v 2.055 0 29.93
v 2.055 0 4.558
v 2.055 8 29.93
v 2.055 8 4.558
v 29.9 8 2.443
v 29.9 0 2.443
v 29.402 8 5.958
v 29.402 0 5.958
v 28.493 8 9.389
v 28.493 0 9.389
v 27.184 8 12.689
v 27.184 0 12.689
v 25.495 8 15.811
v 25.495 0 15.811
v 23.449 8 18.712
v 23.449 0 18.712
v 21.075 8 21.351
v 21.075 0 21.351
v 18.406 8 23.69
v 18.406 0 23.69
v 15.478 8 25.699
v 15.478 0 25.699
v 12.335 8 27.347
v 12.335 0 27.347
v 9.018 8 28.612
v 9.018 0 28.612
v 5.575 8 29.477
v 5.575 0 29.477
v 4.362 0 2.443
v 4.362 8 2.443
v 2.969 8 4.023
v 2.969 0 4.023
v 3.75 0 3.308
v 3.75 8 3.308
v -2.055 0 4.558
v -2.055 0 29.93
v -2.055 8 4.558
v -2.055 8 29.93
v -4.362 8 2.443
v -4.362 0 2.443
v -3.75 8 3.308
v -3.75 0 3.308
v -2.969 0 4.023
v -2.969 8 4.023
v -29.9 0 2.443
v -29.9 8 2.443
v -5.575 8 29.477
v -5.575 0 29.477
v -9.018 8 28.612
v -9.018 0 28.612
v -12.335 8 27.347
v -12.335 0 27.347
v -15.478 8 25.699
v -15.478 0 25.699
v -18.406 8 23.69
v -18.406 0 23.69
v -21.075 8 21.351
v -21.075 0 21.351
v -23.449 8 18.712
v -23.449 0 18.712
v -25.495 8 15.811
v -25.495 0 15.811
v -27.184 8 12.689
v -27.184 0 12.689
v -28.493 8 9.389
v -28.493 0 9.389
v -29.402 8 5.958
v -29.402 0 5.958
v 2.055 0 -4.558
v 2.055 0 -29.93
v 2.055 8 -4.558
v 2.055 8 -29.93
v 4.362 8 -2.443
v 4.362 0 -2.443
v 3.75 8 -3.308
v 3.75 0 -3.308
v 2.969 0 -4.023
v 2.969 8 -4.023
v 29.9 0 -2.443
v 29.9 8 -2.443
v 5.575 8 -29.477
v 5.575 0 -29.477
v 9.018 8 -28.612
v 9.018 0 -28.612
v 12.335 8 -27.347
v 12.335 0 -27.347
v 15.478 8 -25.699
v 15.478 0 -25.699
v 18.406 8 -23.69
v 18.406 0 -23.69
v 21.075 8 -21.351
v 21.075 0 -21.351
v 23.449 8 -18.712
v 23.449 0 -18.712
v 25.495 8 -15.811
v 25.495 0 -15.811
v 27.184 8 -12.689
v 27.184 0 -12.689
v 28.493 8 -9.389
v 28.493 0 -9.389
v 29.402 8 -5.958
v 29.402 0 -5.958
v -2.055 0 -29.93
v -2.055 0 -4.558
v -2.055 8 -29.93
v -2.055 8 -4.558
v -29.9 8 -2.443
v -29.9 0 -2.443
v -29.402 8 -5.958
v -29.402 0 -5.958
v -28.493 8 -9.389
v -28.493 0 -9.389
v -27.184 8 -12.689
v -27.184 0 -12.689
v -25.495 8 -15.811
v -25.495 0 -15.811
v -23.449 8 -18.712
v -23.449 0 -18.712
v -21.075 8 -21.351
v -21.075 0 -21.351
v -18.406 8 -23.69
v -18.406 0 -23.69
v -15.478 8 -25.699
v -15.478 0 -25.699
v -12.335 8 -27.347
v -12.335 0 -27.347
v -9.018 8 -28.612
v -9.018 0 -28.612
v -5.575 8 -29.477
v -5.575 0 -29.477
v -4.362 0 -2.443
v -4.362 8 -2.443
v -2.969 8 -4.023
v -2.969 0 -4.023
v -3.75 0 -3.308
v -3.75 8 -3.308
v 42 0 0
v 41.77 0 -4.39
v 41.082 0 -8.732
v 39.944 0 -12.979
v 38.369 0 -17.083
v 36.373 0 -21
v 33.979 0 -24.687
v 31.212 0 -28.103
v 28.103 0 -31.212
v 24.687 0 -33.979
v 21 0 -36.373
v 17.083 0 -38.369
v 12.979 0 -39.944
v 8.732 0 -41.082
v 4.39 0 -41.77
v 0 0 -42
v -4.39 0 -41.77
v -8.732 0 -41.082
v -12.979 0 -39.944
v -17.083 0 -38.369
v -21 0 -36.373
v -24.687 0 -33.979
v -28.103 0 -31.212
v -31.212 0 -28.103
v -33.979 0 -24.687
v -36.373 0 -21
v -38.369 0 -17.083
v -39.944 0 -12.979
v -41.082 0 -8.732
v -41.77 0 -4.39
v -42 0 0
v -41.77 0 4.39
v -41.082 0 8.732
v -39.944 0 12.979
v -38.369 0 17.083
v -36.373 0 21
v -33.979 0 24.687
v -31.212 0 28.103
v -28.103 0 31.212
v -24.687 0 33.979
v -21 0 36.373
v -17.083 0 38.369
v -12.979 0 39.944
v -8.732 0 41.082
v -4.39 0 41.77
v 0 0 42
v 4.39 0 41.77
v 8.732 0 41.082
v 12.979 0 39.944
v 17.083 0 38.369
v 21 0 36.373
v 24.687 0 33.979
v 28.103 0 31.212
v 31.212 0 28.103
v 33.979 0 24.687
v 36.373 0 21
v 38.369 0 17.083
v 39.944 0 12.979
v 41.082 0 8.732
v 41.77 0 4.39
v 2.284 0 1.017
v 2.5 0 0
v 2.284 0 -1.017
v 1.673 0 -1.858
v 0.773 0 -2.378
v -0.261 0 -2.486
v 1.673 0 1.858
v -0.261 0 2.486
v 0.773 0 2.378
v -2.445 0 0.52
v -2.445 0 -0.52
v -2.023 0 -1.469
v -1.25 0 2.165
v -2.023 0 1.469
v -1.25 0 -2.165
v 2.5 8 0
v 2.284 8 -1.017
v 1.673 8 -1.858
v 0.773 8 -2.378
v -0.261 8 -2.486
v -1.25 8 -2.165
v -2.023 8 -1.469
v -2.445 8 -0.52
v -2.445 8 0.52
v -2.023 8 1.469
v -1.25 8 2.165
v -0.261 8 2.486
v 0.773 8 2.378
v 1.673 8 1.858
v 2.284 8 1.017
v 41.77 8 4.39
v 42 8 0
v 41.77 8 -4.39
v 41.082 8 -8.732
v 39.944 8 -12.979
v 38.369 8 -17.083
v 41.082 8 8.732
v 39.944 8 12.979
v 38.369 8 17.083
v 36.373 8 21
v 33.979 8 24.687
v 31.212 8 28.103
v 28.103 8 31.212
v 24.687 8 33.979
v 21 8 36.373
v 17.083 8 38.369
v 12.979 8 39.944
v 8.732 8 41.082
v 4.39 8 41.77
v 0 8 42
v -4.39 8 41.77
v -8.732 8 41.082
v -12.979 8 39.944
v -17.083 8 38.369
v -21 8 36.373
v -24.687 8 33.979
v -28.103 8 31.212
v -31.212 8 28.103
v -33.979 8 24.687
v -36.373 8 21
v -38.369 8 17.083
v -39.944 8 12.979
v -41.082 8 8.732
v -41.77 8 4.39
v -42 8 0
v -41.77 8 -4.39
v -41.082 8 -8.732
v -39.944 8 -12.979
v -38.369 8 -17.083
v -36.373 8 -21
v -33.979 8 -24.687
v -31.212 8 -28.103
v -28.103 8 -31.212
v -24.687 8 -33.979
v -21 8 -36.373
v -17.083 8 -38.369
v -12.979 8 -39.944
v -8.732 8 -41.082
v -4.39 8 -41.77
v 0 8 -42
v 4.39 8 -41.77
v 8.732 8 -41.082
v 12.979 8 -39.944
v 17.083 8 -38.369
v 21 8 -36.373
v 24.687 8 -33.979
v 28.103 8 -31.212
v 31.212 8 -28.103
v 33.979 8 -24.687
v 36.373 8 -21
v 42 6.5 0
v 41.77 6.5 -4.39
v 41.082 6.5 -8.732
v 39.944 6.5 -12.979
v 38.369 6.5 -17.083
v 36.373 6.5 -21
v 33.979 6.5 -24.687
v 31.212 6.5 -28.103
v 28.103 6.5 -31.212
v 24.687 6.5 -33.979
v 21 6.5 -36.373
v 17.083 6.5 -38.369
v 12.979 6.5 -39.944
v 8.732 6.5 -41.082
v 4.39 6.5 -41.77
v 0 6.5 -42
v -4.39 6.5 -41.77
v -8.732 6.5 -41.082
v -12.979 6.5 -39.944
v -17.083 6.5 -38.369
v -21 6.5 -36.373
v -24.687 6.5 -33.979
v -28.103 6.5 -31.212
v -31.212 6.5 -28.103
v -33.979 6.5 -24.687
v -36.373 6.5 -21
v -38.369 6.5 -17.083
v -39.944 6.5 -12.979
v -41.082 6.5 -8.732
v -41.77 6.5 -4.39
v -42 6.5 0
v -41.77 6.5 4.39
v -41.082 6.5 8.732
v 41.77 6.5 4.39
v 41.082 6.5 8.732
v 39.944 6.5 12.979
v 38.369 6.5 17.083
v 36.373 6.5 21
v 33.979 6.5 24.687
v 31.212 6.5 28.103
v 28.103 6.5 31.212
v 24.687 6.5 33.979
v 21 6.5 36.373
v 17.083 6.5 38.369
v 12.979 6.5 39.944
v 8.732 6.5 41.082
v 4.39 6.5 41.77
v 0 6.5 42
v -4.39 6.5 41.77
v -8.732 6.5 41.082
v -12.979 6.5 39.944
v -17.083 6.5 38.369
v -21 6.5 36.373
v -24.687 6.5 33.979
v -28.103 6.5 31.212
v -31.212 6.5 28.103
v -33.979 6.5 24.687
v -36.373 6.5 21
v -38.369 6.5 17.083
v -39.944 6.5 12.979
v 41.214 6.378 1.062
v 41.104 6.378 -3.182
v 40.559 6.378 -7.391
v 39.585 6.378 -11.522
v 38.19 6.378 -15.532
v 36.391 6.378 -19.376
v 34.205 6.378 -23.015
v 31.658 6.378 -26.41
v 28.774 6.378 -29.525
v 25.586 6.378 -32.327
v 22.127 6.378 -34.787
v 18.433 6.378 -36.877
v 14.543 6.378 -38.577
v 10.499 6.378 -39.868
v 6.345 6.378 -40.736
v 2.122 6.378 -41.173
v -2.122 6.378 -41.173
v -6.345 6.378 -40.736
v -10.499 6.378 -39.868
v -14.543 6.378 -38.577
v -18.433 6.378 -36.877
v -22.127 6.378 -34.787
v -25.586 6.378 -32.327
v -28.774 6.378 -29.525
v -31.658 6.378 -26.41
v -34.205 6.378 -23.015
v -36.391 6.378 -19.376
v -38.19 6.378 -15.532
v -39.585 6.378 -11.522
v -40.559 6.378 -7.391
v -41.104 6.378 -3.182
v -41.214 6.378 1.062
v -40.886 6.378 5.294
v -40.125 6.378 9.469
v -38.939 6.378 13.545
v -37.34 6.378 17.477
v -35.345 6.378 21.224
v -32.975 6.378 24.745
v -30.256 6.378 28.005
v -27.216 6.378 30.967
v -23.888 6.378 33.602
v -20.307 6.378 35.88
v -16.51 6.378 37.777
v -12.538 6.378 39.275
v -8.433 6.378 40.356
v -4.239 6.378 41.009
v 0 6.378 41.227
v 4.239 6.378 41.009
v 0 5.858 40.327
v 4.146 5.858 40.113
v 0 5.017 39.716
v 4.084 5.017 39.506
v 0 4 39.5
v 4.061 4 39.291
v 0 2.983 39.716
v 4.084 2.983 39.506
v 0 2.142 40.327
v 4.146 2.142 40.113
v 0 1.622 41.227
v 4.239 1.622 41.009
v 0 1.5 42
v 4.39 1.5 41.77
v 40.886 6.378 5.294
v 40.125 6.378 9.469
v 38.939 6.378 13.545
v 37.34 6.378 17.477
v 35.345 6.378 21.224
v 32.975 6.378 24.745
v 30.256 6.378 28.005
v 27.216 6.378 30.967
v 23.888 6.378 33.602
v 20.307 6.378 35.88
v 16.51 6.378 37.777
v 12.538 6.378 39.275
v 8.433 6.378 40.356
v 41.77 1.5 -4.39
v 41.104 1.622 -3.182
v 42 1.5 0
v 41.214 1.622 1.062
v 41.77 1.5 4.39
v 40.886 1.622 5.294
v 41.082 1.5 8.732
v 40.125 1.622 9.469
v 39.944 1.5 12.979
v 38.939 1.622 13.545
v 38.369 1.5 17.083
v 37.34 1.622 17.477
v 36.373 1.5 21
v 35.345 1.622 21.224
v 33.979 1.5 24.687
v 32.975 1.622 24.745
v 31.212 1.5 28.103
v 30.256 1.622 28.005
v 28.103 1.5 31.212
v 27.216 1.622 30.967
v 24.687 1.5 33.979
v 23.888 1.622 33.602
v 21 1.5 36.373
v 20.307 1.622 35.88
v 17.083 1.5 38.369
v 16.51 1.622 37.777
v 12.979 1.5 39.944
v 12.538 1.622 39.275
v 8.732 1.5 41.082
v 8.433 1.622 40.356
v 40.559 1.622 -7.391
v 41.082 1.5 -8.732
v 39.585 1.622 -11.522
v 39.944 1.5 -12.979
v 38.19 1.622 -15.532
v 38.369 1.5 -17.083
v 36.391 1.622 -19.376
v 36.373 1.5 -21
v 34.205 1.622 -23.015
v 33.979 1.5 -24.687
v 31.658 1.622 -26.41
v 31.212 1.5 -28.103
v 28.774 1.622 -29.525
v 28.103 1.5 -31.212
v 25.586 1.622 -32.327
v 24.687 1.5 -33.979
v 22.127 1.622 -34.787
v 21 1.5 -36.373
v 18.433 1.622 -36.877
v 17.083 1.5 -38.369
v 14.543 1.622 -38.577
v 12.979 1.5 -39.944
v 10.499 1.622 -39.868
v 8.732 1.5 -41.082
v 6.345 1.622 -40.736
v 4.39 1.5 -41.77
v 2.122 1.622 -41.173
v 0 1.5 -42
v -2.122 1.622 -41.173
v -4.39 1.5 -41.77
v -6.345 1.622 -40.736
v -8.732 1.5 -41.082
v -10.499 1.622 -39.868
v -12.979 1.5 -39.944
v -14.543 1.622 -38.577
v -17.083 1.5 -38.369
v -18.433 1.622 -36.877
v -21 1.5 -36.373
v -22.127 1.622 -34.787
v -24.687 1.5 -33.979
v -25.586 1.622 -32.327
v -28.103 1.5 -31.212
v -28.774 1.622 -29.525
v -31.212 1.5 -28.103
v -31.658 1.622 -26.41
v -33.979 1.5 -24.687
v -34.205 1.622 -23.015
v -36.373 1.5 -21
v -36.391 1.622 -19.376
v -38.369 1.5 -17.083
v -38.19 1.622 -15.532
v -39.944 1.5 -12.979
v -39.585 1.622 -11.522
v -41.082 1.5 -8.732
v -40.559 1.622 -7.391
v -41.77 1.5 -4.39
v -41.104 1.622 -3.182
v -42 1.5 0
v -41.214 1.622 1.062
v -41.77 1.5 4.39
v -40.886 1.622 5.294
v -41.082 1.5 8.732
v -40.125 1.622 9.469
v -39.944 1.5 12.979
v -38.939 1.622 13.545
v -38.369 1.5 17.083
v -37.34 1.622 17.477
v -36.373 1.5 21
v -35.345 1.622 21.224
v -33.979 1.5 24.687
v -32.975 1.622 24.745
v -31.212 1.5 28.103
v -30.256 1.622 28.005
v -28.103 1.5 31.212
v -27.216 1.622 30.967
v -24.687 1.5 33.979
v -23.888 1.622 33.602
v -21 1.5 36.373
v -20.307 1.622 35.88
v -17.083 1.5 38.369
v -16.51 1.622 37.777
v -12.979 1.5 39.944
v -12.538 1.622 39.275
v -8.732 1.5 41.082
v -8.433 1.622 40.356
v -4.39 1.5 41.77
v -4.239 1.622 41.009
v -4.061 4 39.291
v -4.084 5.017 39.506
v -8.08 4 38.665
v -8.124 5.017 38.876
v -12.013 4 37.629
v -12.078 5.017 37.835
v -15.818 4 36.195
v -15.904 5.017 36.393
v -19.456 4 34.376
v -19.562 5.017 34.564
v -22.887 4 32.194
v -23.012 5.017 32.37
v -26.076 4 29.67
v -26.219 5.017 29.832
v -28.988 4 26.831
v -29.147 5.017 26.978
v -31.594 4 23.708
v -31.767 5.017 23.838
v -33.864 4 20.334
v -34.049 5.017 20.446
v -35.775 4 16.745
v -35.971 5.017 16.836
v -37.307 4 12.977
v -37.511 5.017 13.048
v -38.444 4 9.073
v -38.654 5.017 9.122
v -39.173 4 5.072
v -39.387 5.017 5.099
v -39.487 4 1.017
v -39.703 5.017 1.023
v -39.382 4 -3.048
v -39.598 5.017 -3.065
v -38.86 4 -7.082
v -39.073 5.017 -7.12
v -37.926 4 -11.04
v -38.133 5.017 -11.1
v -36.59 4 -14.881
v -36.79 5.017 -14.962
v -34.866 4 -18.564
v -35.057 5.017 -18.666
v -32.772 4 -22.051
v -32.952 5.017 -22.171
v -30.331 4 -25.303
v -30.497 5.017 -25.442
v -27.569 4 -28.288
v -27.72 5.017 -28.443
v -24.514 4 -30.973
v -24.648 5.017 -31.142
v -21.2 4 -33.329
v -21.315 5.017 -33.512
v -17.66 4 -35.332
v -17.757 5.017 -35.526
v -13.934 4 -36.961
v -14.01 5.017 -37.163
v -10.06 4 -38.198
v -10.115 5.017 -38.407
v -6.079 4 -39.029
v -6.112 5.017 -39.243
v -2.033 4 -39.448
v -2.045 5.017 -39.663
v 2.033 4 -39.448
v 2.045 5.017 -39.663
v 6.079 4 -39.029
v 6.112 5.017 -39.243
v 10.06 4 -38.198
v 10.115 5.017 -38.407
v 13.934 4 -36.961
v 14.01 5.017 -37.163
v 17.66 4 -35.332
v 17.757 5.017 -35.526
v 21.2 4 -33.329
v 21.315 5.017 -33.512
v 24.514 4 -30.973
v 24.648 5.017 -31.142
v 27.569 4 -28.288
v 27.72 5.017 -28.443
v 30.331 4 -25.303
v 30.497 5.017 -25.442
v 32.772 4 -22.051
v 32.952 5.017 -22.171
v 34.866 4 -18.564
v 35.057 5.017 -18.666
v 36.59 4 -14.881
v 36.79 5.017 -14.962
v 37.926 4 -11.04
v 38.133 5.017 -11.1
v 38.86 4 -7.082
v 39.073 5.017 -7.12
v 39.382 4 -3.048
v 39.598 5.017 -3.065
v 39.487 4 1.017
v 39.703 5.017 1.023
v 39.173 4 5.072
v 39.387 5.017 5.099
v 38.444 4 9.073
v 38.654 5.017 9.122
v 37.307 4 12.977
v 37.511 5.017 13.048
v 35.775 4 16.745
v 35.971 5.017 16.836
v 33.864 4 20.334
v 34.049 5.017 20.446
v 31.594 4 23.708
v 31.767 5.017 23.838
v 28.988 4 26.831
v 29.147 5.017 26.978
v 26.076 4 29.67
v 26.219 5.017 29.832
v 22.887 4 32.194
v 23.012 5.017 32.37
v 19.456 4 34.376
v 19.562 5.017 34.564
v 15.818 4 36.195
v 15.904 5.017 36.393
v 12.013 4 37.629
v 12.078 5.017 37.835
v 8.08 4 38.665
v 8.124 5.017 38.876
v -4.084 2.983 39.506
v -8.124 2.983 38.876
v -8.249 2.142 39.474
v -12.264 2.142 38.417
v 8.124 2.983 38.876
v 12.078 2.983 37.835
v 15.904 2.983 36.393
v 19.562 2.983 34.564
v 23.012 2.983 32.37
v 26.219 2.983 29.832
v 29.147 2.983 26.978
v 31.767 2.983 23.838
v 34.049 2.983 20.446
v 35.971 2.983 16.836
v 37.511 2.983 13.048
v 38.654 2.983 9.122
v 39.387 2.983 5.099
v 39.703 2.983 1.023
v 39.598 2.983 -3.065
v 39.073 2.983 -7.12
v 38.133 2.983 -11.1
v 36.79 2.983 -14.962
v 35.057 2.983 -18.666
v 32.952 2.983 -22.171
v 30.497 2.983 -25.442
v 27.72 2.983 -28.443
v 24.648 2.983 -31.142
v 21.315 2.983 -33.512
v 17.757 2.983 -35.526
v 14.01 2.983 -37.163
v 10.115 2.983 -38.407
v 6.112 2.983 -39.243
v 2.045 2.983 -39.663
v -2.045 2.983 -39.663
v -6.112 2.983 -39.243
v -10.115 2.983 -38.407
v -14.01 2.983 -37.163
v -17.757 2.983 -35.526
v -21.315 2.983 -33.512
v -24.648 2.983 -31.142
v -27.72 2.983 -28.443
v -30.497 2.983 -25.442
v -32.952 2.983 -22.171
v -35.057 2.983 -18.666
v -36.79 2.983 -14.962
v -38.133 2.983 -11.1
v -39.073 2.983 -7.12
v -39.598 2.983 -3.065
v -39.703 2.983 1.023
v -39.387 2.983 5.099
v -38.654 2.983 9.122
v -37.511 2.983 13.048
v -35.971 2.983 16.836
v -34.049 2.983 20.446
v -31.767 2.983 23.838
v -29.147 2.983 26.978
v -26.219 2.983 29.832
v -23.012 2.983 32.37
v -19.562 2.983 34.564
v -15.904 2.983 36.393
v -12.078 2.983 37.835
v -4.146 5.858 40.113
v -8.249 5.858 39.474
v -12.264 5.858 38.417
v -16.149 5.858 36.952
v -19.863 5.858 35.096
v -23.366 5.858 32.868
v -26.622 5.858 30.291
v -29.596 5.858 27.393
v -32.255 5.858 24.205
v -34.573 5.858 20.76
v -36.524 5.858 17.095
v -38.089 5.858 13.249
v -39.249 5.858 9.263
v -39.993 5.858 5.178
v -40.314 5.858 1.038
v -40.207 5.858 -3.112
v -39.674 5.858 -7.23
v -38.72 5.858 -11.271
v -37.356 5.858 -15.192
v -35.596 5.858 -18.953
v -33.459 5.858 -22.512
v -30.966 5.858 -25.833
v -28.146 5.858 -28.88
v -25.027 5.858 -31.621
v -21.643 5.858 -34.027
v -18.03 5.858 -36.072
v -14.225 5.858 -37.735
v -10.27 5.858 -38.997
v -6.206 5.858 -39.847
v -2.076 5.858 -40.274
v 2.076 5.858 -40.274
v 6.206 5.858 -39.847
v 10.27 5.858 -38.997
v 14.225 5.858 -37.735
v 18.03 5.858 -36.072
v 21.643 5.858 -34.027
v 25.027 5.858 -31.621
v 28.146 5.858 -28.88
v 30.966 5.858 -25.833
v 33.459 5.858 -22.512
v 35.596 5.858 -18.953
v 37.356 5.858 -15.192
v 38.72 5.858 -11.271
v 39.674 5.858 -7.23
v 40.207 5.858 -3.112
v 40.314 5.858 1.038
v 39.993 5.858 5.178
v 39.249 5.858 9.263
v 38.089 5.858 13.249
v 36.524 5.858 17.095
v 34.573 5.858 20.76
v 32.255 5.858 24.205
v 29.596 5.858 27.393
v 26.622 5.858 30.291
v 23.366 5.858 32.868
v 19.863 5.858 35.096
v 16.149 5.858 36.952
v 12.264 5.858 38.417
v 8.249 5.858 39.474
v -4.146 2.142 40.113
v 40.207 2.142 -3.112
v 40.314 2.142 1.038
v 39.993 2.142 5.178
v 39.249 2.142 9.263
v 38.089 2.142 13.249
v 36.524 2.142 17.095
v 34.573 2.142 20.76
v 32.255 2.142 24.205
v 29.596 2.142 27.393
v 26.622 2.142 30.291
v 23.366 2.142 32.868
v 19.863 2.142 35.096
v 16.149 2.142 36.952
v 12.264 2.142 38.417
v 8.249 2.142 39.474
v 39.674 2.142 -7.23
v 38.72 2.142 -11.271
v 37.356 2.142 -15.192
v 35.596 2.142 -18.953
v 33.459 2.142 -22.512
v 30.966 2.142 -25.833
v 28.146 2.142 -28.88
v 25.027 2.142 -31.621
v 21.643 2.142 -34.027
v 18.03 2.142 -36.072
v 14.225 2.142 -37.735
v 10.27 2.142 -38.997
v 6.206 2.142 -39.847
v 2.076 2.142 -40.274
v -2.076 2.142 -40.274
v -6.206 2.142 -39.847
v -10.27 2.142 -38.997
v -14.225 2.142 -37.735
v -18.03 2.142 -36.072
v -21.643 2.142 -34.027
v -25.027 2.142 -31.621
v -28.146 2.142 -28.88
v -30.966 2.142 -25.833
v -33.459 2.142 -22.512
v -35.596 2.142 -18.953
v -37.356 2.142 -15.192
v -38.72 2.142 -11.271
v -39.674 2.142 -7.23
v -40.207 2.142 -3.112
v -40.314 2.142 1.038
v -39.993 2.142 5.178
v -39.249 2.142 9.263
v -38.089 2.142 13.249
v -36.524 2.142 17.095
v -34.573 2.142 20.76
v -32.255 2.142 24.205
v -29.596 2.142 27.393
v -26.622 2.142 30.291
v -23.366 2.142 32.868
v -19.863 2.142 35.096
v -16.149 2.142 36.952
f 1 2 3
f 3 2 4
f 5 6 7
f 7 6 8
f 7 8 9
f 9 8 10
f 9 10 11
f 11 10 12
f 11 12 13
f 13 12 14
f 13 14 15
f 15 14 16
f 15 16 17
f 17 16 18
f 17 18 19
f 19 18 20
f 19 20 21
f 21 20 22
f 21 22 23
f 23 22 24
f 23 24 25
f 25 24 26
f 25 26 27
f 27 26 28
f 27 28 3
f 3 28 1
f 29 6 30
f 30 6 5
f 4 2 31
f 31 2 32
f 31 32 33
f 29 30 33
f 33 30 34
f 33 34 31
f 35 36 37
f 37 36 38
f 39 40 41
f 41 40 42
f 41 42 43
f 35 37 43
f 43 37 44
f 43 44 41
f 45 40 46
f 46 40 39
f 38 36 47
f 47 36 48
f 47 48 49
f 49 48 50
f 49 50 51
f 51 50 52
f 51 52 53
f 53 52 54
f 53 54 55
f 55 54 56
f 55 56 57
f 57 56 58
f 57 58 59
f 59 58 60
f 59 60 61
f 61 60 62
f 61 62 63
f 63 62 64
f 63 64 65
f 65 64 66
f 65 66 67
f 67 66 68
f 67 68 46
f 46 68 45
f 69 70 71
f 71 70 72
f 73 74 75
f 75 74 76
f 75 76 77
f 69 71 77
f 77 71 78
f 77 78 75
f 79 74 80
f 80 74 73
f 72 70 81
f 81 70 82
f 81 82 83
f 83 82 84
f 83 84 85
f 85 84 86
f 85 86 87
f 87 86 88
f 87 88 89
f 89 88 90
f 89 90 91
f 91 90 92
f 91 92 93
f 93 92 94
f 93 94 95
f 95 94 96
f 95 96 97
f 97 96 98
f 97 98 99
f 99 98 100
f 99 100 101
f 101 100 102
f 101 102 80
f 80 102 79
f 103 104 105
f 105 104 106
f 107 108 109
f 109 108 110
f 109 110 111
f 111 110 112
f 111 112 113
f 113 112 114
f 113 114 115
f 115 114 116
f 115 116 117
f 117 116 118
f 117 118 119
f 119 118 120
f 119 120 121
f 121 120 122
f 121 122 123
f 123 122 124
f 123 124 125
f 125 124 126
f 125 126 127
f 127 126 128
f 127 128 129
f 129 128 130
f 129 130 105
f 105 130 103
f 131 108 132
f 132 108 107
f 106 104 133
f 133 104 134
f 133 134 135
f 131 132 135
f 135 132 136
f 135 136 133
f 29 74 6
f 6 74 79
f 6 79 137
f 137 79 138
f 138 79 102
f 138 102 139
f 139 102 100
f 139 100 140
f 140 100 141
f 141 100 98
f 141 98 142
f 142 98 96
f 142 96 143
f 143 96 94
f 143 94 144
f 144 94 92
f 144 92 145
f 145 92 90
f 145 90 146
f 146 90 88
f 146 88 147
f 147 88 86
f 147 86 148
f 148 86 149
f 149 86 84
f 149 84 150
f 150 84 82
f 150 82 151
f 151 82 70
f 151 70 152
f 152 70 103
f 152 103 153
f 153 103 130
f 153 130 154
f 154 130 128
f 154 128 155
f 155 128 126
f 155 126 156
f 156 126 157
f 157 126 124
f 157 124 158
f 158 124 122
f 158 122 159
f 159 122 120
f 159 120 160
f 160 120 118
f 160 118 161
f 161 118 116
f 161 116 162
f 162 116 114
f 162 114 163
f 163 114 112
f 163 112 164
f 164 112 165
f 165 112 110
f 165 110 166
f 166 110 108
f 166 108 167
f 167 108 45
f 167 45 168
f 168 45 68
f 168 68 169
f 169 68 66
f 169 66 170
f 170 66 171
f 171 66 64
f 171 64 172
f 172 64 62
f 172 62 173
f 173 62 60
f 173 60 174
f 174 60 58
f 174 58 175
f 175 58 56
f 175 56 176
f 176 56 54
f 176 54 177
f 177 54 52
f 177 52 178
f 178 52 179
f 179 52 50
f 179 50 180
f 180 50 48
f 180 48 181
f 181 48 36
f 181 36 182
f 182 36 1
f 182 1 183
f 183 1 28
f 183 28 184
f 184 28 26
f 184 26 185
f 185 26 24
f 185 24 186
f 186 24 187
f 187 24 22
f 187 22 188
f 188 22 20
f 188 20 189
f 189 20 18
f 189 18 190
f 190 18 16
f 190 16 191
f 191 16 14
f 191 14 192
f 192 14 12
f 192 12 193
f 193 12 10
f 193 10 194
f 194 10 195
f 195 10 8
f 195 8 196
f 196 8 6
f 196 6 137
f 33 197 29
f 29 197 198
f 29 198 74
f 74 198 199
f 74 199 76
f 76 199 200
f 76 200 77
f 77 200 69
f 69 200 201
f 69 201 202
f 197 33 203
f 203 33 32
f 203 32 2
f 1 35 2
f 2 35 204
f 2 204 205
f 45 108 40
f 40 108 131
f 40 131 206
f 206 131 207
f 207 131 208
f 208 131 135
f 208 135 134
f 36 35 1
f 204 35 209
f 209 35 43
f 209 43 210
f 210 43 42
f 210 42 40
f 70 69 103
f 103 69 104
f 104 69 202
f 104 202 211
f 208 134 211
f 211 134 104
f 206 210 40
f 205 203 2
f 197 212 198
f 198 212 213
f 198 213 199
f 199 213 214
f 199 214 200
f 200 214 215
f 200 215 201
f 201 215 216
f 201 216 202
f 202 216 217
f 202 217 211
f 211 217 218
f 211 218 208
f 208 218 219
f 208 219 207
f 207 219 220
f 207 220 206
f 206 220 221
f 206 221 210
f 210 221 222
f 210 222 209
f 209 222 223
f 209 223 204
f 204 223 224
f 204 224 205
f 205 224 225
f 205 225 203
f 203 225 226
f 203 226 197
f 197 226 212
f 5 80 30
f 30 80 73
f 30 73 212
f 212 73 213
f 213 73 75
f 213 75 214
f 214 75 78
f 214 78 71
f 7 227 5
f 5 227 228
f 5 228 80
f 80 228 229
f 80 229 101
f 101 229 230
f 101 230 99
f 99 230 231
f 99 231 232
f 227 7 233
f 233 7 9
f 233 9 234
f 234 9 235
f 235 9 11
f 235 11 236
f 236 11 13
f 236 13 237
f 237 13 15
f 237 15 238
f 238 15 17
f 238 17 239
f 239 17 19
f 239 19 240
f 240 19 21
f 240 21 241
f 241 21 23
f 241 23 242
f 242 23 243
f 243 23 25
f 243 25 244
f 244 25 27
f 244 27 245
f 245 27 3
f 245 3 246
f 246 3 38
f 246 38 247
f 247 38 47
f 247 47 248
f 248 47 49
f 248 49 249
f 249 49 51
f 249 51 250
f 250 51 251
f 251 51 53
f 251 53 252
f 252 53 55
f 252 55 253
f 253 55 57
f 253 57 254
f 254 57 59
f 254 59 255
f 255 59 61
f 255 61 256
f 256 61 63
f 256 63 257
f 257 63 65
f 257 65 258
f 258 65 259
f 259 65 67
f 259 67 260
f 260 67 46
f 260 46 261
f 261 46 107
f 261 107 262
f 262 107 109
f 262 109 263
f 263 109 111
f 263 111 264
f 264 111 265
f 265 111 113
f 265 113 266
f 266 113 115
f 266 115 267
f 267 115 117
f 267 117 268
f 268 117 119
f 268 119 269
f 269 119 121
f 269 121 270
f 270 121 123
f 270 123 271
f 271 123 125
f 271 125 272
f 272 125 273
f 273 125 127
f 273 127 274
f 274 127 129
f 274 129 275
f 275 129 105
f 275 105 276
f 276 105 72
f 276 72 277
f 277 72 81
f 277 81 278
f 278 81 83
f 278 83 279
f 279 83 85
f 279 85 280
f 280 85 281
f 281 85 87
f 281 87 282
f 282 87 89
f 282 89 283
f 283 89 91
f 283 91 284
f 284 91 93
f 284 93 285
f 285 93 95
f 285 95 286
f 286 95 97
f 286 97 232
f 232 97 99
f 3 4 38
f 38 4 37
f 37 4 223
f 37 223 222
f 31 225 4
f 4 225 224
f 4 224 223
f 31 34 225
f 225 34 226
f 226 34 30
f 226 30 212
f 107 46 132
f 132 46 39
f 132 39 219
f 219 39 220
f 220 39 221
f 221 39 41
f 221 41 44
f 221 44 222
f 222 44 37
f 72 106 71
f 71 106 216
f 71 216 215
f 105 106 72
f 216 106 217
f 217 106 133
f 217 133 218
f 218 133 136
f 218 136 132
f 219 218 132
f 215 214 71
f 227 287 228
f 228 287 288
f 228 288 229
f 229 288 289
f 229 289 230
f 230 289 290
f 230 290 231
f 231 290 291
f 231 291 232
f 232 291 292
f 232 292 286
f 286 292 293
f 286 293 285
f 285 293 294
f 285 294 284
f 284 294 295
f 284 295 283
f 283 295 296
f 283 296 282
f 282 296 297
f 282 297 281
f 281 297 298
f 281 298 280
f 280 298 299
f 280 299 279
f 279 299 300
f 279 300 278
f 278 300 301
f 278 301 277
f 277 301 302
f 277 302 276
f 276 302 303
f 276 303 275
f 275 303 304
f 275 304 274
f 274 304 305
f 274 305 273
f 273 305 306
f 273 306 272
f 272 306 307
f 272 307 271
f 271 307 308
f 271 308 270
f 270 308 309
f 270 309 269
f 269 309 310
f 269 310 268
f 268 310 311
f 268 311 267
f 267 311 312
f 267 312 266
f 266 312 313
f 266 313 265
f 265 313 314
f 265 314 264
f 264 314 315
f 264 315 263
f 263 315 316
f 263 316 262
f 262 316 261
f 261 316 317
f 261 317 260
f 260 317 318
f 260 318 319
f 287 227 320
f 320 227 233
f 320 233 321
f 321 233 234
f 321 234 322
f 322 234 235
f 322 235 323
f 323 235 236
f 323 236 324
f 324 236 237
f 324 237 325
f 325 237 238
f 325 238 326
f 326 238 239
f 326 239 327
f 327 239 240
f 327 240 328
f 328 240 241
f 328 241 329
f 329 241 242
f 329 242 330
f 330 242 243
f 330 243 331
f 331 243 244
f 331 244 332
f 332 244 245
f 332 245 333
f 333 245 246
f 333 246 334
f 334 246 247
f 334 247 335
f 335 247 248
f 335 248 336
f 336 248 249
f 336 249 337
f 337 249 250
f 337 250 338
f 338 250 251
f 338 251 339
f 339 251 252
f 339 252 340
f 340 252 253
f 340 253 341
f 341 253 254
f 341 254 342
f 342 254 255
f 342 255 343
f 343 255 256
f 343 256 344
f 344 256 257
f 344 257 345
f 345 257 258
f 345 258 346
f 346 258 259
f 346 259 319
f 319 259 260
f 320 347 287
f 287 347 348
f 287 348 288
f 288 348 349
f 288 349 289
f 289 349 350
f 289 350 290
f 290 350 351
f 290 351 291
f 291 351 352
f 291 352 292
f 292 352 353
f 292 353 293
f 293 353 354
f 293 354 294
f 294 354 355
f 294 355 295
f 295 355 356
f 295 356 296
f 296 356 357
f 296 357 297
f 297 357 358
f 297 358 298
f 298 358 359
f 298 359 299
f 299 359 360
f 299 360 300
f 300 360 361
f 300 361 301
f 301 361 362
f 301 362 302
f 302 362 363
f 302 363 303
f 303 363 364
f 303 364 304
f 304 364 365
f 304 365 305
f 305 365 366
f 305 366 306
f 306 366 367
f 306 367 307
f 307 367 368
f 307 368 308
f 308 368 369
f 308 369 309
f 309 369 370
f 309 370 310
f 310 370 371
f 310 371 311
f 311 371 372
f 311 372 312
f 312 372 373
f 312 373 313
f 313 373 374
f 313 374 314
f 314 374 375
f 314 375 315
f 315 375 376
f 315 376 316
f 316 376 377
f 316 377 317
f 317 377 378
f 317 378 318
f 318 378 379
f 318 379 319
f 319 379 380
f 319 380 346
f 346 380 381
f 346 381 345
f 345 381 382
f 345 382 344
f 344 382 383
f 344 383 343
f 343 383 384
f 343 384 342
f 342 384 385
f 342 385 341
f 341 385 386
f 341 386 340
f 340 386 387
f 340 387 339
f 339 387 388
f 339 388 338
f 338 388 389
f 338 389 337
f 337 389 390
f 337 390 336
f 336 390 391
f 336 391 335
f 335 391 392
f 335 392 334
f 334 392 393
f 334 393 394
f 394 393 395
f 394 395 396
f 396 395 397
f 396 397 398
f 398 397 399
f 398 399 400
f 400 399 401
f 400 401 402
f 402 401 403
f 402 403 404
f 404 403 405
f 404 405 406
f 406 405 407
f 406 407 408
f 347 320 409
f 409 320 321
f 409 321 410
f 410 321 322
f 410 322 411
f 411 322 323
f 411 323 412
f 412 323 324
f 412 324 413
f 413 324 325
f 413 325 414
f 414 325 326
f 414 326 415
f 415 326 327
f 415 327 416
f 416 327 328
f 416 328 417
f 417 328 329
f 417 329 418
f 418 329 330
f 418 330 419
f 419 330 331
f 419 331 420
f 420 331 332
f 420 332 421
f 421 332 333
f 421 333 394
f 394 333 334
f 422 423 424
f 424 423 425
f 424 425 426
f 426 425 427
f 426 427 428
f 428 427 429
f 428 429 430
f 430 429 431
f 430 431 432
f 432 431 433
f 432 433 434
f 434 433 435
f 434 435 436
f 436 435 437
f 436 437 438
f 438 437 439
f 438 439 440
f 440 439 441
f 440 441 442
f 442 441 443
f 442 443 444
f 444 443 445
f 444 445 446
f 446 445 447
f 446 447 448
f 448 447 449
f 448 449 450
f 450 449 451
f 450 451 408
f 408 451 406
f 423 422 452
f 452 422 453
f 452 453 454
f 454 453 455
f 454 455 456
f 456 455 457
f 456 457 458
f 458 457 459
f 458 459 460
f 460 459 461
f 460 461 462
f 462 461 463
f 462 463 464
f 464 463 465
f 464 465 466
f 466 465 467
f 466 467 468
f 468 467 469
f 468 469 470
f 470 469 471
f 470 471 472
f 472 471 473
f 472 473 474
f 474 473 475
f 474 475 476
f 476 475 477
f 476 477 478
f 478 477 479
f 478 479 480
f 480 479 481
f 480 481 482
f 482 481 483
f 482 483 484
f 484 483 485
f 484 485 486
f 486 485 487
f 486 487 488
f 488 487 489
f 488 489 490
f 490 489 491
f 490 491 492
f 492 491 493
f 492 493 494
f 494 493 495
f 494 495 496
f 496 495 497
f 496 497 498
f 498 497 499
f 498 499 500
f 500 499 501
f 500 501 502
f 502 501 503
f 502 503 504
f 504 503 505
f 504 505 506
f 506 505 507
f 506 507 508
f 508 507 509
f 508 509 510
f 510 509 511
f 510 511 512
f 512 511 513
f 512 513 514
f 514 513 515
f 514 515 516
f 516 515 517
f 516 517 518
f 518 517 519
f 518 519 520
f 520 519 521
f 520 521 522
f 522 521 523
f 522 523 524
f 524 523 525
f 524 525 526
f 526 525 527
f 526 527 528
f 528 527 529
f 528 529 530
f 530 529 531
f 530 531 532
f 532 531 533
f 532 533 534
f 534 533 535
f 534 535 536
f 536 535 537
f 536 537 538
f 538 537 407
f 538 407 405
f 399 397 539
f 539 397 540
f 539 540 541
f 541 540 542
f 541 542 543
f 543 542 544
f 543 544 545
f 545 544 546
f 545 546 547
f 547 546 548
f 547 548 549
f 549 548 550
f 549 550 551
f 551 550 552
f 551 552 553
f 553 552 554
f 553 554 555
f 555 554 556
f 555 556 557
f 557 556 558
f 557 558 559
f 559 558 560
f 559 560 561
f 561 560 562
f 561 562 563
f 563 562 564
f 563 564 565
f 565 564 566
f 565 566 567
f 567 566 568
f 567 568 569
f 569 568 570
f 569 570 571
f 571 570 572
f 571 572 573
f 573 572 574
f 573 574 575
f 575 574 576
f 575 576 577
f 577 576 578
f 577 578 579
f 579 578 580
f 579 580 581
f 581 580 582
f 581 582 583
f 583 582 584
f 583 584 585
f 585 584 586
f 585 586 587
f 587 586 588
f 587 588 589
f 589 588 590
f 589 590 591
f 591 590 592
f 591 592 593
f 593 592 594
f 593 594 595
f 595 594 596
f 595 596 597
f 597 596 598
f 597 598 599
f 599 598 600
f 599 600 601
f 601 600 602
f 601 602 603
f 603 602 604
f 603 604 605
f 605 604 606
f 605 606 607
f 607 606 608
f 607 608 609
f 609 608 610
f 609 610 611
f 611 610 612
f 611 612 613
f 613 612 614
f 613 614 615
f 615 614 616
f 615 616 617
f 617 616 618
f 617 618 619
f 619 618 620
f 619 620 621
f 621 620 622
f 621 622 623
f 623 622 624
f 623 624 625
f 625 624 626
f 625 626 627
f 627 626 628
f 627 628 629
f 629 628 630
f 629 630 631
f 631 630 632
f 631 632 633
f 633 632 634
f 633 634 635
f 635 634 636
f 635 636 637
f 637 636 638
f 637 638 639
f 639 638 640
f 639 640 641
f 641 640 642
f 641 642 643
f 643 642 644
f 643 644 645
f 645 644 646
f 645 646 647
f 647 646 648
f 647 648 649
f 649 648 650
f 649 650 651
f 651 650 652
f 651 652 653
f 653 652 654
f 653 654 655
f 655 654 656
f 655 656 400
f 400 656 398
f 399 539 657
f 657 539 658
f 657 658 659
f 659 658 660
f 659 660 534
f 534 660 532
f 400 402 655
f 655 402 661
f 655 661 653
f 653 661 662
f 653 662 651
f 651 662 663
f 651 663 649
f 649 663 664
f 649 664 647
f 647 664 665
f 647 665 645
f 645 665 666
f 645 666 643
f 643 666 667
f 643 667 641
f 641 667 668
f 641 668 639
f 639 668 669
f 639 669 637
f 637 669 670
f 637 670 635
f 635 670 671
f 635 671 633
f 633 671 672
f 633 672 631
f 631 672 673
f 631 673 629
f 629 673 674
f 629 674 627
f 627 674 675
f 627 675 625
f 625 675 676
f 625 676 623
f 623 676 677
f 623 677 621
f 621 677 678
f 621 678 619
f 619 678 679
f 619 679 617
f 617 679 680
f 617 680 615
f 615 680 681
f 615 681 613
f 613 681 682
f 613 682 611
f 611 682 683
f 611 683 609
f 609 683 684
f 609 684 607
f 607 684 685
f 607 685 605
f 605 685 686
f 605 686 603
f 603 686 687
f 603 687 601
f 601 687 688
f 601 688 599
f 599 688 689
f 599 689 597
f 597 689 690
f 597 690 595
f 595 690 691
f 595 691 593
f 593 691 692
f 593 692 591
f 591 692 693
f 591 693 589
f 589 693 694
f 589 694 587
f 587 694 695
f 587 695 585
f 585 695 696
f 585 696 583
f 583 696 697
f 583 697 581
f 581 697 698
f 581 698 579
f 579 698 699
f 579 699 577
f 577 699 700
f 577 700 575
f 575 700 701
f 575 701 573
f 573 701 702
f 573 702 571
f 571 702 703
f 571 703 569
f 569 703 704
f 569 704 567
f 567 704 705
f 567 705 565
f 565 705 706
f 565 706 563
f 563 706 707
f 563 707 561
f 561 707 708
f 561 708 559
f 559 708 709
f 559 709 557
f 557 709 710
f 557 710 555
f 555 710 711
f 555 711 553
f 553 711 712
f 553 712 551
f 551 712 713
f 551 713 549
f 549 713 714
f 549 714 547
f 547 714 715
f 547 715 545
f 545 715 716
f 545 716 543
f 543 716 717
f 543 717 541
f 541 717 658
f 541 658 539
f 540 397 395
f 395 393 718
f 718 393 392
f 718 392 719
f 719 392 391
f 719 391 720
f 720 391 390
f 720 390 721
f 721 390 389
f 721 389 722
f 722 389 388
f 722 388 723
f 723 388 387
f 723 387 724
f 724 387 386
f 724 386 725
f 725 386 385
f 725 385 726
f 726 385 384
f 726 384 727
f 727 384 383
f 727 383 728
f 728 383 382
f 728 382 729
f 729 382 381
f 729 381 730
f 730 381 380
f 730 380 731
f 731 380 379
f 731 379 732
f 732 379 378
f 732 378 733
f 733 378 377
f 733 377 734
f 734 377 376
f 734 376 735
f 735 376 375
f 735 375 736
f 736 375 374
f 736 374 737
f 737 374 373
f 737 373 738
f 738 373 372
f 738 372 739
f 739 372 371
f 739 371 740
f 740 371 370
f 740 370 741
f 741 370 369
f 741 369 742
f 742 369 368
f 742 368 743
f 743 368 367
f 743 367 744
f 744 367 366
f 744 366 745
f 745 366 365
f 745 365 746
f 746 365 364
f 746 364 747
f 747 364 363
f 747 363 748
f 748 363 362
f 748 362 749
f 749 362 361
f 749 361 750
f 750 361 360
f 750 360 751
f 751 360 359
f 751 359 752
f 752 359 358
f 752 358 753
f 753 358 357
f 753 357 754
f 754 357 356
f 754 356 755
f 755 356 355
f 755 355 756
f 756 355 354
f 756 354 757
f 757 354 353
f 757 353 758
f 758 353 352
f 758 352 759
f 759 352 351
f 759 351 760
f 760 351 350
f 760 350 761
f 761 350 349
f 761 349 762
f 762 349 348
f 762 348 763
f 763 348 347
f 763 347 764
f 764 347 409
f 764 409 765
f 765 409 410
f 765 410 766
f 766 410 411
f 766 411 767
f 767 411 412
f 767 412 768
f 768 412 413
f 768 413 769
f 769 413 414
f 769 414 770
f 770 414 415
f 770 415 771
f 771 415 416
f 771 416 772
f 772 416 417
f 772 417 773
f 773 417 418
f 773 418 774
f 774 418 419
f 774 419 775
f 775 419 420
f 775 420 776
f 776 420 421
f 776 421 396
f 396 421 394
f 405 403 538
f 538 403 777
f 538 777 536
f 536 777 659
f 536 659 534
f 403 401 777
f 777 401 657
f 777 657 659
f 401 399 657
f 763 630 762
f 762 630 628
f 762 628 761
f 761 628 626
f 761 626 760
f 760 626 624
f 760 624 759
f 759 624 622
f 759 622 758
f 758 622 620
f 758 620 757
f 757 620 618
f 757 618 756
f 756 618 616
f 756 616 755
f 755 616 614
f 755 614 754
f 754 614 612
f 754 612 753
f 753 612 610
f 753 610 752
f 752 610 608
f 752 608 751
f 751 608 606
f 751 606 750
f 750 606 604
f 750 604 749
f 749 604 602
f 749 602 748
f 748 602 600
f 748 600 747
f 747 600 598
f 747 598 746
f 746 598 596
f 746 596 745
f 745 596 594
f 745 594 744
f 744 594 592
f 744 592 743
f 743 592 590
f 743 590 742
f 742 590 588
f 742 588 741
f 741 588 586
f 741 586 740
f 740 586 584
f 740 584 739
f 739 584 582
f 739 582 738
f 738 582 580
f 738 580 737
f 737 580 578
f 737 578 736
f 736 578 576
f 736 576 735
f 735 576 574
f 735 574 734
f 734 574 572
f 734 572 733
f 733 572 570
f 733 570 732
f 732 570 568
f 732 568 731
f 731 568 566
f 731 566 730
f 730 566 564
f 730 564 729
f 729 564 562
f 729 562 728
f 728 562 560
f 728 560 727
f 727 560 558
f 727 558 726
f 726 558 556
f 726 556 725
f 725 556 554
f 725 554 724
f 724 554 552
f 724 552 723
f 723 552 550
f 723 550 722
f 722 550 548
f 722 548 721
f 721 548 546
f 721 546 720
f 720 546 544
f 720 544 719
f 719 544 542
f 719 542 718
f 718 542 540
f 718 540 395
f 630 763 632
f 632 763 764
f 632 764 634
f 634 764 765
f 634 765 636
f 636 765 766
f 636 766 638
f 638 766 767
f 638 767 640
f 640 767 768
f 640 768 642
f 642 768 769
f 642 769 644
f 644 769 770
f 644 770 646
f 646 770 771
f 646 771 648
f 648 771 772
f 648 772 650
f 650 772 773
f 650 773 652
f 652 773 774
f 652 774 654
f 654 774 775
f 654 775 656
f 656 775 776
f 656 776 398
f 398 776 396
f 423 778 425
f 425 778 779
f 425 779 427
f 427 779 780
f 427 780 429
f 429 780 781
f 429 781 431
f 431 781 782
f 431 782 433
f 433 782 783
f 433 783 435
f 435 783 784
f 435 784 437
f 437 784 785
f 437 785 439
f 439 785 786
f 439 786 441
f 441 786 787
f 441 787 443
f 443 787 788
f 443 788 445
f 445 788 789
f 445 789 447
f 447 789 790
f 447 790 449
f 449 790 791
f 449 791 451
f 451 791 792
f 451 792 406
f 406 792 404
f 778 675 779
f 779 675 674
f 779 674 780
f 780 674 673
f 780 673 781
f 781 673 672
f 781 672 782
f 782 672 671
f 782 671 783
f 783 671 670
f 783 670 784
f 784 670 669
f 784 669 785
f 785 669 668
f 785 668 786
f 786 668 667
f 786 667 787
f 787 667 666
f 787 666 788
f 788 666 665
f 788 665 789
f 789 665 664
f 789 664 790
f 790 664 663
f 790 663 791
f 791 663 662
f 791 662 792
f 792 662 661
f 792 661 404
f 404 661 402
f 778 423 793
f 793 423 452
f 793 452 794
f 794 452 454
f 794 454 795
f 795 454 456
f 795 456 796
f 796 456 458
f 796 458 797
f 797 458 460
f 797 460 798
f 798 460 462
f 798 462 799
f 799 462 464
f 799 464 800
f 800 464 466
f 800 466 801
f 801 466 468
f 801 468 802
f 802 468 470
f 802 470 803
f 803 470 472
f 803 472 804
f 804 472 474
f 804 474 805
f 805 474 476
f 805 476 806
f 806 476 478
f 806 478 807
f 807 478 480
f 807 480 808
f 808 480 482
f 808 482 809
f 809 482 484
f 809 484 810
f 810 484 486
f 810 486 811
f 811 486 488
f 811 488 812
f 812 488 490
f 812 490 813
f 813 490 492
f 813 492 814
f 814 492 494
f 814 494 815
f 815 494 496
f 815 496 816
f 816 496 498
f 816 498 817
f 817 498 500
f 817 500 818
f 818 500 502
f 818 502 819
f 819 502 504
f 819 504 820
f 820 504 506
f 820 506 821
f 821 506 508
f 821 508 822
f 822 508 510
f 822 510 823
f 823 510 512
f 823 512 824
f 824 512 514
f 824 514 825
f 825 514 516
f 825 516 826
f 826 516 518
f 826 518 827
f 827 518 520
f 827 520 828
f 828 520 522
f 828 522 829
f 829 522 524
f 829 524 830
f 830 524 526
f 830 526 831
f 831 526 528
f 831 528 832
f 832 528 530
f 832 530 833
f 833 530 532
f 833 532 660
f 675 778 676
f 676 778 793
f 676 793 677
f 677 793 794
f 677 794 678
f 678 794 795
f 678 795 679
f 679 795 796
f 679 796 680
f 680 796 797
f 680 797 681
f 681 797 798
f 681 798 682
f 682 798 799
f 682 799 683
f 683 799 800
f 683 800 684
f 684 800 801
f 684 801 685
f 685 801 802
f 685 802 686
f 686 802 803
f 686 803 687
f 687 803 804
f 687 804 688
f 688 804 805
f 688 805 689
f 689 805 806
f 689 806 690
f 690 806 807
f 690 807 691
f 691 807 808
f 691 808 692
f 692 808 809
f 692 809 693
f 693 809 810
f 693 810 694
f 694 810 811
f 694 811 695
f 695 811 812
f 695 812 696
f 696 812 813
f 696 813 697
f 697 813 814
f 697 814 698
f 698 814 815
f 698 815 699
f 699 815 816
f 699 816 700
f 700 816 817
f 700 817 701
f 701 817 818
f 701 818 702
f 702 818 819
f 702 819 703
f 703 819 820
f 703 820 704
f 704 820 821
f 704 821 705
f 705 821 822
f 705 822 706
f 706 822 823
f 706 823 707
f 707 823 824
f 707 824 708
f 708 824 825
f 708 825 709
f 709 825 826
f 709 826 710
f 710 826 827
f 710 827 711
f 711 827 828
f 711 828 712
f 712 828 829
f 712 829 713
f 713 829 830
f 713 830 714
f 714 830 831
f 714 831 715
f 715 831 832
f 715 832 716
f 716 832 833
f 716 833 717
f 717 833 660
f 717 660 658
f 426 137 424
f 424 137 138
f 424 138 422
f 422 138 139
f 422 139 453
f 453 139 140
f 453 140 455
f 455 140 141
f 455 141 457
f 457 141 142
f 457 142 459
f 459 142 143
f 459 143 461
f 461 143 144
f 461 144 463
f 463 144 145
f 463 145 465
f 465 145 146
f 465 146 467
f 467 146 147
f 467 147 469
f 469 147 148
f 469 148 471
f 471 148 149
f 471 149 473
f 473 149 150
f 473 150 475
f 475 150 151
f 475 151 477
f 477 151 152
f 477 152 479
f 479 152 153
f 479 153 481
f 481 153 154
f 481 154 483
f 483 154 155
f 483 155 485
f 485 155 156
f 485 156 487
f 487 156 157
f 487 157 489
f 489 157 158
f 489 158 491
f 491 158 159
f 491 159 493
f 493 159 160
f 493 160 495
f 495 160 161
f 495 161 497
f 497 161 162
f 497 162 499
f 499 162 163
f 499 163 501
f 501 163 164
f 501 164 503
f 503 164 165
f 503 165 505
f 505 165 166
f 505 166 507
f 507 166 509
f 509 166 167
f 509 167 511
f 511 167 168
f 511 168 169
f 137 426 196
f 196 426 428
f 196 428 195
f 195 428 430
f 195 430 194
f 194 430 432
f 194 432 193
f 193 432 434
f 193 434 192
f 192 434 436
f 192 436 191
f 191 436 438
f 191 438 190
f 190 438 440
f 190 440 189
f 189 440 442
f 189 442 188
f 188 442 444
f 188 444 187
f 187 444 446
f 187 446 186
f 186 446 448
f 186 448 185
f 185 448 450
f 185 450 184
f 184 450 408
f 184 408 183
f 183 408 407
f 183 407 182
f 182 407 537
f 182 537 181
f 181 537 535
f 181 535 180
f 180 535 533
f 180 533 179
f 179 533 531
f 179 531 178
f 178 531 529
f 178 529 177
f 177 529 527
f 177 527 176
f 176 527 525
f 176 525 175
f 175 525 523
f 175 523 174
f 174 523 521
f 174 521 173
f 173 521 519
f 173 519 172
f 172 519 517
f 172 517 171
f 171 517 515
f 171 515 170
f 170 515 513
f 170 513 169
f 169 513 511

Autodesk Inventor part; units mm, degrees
ref_plane "YZ Plane" through (0, 0, 0) normal (1, 0, 0) x (0, 1, 0)
ref_plane "XZ Plane" through (0, 0, 0) normal (0, 1, 0) x (-1, 0, 0)
ref_plane "XY Plane" through (0, 0, 0) normal (0, 0, 1) x (1, 0, 0)
sketch "Sketch1" plane through (0, 0, 0) normal (0, 0, 1) x (1, 0, 0)
  line L0 (0, 0) -> (2.5, 0)
  line L1 (2.5, 0) -> (2.5, 8)
  line L2 (2.5, 8) -> (0, 8)
  line L3 (0, 8) -> (0, 0)
  line L4 (2.5, 8) -> (42, 8)
  line L5 (42, 8) -> (42, 0)
  line L6 (42, 0) -> (2.5, 0)
  line L7 (2.5, 0) -> (2.5, 8)
  circle A0 centre (42, 4) radius 2.5
  point P0 (42, 1.5)
  point P1 (42, 6.5)
  dimension "d0" = 8
  dimension "d1" = 2.5
  dimension "d2" = 39.5
  dimension "d3" = 5
revolve "Revolution1" add sketch "Sketch1" angle 360 about axis through (0, 8, 0) along (0, -1, 0) contours L1 L4 L5 A0 L6
sketch "Sketch2" plane through (0, 8, 0) normal (0, 1, 0) x (1, 0, 0)
  circle A0 centre (0, 0) radius 2.5 projected
  circle A1 centre (0, 0) radius 30
  circle A2 centre (0, 0) radius 5
  line L0 (-4.3623, -2.4434) -> (-29.9003, -2.4434)
  line L1 (-4.3623, 2.4434) -> (-29.9003, 2.4434)
  line L2 (4.3623, 2.4434) -> (29.9003, 2.4434)
  line L3 (4.3623, -2.4434) -> (29.9003, -2.4434)
  line L4 (2.0546, -4.5583) -> (2.0546, -29.9296)
  line L5 (-2.0546, -4.5583) -> (-2.0546, -29.9296)
  line L6 (-2.0546, 4.5583) -> (-2.0546, 60.5512)
  line L7 (2.0546, 4.5583) -> (2.0546, 29.9296)
  point P0 (-2.0546, 29.9296)
  dimension "d5" = 60
  dimension "d6" = 10
extrude "Extrusion1" cut sketch "Sketch2" against normal blind 25 contours L2 A2 L7 A1 | A1 L4 A2 L3 | L6 A2 L1 A1 | A1 L0 A2 L5
properties part number "Roue_pami_V3"
